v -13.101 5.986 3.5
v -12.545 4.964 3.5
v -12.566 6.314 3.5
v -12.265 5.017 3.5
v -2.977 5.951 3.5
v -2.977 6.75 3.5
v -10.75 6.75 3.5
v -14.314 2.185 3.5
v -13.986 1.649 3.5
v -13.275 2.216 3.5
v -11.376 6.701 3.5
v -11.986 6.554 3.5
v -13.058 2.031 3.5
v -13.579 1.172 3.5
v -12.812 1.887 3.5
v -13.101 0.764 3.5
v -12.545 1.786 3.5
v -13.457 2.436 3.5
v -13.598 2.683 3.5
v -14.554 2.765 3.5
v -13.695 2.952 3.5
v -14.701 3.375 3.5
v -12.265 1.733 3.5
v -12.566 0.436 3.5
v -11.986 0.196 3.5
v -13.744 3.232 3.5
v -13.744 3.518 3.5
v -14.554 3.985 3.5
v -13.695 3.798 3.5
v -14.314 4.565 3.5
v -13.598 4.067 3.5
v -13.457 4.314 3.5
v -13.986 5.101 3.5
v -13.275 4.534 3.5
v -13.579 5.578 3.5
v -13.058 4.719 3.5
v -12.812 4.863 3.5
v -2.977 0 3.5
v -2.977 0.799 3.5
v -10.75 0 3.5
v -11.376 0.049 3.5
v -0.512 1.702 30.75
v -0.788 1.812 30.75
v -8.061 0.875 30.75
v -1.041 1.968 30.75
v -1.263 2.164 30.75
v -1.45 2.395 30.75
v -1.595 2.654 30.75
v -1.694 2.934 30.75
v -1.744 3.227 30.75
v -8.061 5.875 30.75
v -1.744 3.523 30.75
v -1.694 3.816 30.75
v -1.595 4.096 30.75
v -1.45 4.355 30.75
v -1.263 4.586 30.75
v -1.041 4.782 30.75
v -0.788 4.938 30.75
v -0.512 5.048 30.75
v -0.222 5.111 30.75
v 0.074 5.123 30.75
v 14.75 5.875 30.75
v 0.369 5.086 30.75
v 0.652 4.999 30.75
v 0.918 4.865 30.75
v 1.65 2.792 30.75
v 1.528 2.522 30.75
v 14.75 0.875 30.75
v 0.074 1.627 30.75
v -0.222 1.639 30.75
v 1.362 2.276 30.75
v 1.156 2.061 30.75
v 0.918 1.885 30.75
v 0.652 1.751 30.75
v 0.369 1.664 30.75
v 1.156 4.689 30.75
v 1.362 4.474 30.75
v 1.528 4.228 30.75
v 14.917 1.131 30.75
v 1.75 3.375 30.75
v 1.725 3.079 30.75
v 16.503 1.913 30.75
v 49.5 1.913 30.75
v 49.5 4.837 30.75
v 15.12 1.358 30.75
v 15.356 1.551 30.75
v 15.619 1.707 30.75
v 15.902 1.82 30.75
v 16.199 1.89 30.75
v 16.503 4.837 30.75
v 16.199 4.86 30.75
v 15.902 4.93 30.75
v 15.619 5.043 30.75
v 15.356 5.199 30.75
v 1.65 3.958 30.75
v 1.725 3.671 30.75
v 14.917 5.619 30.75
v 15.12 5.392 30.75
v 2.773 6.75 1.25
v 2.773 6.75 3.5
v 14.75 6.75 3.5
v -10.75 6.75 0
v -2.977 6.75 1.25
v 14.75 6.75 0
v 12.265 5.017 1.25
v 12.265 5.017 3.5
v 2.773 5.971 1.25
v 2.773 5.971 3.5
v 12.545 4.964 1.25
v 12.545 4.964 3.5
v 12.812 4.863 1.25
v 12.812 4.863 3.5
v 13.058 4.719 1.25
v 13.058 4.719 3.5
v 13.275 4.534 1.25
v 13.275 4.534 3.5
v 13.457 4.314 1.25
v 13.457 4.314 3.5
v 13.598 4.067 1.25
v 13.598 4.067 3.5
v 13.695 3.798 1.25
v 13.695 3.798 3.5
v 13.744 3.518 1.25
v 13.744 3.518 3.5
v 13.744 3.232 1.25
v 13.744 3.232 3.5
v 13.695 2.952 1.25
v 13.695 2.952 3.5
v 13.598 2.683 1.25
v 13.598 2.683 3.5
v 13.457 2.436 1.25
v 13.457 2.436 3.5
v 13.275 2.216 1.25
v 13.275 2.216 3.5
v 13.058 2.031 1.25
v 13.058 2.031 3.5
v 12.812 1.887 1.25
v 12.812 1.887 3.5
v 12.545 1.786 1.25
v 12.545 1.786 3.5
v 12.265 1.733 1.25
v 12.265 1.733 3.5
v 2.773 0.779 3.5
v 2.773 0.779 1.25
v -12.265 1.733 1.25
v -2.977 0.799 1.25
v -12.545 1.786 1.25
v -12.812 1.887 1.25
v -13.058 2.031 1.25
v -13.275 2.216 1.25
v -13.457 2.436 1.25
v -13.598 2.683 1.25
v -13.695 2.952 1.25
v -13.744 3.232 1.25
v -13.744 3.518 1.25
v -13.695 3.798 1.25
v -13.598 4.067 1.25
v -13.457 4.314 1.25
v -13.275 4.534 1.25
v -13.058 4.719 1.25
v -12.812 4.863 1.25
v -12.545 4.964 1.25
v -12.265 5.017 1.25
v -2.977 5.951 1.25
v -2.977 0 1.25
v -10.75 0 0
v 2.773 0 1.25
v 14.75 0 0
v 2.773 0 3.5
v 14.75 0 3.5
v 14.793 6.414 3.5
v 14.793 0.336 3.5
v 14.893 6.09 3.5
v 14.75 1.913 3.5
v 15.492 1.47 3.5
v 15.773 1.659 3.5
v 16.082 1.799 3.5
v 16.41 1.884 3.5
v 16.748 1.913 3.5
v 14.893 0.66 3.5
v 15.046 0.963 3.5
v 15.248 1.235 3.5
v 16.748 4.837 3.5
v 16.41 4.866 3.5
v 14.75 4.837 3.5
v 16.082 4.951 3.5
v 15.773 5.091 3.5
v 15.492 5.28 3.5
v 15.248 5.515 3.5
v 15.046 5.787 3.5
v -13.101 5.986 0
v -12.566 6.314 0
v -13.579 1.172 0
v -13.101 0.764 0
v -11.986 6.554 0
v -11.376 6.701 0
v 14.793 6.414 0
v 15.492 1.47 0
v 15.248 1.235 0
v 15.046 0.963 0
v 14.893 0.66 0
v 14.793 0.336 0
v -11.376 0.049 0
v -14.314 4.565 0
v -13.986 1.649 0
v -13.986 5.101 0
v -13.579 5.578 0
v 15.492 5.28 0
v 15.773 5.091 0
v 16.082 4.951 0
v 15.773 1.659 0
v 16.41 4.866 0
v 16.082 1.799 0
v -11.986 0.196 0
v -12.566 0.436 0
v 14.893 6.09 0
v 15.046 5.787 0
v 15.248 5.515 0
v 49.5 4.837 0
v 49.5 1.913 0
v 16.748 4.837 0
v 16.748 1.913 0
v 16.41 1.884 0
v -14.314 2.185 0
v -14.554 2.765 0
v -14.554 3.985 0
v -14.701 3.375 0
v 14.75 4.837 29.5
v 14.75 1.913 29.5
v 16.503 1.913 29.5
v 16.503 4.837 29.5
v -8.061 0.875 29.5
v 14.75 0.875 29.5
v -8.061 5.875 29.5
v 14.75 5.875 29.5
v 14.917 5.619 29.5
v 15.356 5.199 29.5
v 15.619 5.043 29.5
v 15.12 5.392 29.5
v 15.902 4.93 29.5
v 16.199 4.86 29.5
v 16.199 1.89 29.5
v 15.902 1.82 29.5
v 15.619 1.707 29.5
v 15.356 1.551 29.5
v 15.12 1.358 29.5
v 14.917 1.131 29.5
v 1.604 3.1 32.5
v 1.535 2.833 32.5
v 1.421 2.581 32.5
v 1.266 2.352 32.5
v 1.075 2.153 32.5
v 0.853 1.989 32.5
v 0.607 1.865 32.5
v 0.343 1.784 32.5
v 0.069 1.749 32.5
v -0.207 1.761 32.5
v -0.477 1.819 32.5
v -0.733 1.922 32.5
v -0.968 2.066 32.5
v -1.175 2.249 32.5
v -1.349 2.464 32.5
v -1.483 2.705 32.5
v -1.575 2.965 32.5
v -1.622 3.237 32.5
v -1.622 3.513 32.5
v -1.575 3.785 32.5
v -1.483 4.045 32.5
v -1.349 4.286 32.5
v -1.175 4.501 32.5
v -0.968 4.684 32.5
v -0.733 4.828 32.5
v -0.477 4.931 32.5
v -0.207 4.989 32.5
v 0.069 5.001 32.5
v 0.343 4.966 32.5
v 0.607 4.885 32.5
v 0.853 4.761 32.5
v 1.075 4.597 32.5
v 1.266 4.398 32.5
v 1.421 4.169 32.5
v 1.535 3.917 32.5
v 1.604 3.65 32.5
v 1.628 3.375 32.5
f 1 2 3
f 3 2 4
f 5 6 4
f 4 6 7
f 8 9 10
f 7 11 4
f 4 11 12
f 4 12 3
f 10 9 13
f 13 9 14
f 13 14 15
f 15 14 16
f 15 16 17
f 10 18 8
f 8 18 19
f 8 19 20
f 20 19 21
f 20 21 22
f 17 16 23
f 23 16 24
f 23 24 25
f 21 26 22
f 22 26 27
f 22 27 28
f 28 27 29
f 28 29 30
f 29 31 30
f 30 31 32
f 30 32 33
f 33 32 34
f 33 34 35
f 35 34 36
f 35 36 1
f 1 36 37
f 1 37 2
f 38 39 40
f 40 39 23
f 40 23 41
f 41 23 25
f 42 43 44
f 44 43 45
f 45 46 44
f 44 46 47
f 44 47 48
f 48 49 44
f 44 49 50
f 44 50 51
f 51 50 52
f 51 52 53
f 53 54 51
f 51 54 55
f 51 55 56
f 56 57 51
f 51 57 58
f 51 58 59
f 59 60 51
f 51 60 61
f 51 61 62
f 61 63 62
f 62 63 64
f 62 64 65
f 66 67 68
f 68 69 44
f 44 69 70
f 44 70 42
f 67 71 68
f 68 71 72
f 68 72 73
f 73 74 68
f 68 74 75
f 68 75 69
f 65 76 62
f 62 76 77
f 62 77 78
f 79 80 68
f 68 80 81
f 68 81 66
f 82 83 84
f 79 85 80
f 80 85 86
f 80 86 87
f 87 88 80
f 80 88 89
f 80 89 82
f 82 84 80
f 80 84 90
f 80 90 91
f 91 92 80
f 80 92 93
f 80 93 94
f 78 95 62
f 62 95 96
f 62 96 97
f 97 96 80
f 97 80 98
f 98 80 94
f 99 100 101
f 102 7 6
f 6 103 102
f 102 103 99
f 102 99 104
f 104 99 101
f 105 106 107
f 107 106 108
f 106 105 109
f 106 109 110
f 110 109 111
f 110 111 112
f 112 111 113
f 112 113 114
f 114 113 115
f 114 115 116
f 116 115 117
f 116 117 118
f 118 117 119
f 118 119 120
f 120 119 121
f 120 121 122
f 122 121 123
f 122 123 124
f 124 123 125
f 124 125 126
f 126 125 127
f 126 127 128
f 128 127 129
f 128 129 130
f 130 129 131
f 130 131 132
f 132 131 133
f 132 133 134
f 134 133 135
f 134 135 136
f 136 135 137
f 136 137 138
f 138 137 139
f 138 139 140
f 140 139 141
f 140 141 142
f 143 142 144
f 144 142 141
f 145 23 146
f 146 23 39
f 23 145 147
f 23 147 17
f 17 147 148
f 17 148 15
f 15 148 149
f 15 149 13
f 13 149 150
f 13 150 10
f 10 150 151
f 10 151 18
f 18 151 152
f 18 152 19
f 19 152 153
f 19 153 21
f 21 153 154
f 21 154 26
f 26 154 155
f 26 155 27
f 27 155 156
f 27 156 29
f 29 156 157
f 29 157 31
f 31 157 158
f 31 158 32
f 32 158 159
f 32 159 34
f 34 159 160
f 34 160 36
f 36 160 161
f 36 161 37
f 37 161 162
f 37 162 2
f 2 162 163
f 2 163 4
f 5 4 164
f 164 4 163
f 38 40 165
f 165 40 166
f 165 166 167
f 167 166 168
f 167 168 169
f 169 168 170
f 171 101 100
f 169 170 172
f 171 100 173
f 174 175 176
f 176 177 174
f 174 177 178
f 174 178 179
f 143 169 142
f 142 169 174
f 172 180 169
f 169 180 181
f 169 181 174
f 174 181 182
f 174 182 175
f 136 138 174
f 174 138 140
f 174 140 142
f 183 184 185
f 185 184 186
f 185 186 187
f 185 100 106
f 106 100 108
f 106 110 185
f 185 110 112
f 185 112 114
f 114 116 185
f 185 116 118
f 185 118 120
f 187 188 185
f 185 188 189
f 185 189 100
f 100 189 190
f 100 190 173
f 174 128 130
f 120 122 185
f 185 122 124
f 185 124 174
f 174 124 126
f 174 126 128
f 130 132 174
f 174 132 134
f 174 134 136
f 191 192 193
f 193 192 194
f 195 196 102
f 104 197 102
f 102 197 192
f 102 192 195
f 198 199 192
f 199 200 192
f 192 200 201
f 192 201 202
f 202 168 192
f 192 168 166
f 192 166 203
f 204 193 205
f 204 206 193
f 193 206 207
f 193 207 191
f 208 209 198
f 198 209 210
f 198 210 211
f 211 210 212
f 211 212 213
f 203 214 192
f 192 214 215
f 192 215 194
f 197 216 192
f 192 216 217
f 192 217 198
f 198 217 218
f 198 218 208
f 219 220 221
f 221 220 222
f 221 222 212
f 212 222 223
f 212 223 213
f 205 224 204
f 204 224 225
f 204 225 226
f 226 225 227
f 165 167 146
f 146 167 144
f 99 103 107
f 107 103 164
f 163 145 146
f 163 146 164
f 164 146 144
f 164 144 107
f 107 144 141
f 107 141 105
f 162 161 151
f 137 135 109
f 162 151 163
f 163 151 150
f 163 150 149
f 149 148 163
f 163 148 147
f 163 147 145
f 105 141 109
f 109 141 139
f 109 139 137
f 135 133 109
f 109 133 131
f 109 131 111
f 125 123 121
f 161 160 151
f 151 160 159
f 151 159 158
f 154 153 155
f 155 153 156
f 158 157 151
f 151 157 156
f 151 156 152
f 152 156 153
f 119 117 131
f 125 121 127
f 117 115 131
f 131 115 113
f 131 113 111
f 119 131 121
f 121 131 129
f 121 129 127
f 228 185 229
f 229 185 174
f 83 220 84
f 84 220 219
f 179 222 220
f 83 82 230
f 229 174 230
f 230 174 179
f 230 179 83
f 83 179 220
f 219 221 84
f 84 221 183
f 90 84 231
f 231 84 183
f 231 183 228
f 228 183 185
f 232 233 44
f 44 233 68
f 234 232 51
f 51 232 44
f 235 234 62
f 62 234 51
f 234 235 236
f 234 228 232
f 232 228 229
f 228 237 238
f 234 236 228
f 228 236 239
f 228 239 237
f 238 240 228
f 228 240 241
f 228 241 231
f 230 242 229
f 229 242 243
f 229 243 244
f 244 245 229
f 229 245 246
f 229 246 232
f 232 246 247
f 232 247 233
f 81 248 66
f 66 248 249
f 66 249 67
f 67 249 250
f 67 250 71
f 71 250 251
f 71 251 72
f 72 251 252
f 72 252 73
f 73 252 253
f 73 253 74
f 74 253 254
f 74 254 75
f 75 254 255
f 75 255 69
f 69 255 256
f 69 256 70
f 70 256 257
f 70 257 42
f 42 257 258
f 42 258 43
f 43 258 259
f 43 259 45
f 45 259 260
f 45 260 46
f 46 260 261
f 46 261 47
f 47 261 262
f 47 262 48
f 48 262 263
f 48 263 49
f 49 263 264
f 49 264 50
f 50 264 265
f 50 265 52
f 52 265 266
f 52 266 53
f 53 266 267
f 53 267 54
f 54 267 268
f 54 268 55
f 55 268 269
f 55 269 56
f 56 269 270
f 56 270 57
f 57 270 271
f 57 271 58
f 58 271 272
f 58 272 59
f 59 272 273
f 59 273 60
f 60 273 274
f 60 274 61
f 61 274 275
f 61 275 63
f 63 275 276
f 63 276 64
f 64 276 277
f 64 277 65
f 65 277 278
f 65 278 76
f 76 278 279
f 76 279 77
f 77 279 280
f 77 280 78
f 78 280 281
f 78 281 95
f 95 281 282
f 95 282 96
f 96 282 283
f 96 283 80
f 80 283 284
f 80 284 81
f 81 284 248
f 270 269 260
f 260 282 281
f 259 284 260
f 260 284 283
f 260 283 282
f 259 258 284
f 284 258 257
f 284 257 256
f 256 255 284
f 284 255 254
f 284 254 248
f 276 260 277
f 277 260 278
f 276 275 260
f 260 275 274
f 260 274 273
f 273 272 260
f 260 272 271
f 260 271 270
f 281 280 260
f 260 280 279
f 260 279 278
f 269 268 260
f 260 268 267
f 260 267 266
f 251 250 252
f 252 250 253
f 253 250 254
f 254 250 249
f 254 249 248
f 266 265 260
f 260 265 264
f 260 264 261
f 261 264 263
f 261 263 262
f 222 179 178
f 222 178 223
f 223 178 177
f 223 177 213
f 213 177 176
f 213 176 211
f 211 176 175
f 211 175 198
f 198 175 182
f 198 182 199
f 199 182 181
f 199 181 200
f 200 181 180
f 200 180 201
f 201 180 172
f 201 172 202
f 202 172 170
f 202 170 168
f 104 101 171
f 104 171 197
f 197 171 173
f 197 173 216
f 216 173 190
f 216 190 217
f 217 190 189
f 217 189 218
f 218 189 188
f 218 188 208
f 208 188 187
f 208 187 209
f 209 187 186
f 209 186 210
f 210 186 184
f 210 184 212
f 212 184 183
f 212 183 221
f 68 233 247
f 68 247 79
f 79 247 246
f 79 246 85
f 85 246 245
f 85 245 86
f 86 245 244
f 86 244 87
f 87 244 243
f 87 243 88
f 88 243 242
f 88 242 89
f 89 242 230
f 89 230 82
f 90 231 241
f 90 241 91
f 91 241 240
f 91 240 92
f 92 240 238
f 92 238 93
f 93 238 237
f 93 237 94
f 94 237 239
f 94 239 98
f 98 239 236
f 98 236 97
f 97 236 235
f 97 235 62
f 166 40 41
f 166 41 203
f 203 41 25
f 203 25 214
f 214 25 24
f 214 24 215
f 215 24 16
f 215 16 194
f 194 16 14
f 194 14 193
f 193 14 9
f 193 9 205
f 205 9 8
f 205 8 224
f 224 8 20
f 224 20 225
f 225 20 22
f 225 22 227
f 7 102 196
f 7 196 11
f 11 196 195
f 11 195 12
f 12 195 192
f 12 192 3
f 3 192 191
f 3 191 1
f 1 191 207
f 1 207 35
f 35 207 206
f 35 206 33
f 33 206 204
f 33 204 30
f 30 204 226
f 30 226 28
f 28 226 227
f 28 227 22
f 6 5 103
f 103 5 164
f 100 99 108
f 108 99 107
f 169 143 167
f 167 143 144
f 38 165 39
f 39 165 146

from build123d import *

# Parameters (mm, degrees)
SKETCH1_W            = 29.5
SKETCH1_H            = 6.75
BOSS_EXTRUDE10_DEPTH = 3.5
BOSS_EXTRUDE15_DEPTH = 1.25
SKETCH1_17_W         = 34.75
SKETCH1_17_H         = 2.924143722
BOSS_EXTRUDE17_DEPTH = 30.75
BOSS_EXTRUDE18_DEPTH = 1.25
SKETCH2_9_R          = 1.75
BOSS_EXTRUDE19_DEPTH = 1.75
BOSS_EXTRUDE19_TAPER = 4
FILLET1_R            = 2
FILLET2_R            = 4
CUT_EXTRUDE1_START   = -2.25
SKETCH3_W            = 5.75
SKETCH3_H            = 1.125
CUT_EXTRUDE1_DEPTH   = 2.25


with BuildPart() as part:
    # Sketch1 → Boss-Extrude10 (new body)
    with BuildSketch(Plane.XY):
        with Locations((0, 3.375)):
            Rectangle(SKETCH1_W, SKETCH1_H)
        with BuildLine():
            Line((-12.265078429, 5.016721387), (0, 6.25))
            Line((0, 6.25), (12.265078429, 5.016721387))
            ThreePointArc((12.265078429, 5.016721387), (13.75, 3.375), (12.265078429, 1.733278613))
            Line((12.265078429, 1.733278613), (0, 0.5))
            Line((0, 0.5), (-12.265078429, 1.733278613))
            ThreePointArc((-12.265078429, 1.733278613), (-13.75, 3.375), (-12.265078429, 5.016721387))
        make_face(mode=Mode.SUBTRACT)
    extrude(amount=BOSS_EXTRUDE10_DEPTH)

    # Sketch1<16> → Boss-Extrude15 (add)
    with BuildSketch(Plane.XY):
        with BuildLine():
            ThreePointArc((-12.265078429, 5.016721387), (-13.75, 3.375), (-12.265078429, 1.733278613))
            Line((-12.265078429, 1.733278613), (0, 0.5))
            Line((0, 0.5), (12.265078429, 1.733278613))
            ThreePointArc((12.265078429, 1.733278613), (13.75, 3.375), (12.265078429, 5.016721387))
            Line((12.265078429, 5.016721387), (0, 6.25))
            Line((0, 6.25), (-12.265078429, 5.016721387))
        make_face()
    extrude(amount=BOSS_EXTRUDE15_DEPTH)

    # Sketch1<17> → Boss-Extrude17 (add)
    with BuildSketch(Plane.XY):
        with Locations((32.125, 3.375)):
            Rectangle(SKETCH1_17_W, SKETCH1_17_H)
    extrude(amount=BOSS_EXTRUDE17_DEPTH)

    # Sketch2 → Boss-Extrude18 (add)
    with BuildSketch(Plane.XY.offset(30.75)):
        Polygon((13.5, 5.875), (-8.061356684, 5.875), (-8.061356684, 0.875), (14.75, 0.875), (14.75, 5.875), align=None)
    extrude(amount=-BOSS_EXTRUDE18_DEPTH)

    # Sketch2<9> → Boss-Extrude19 (add)
    with BuildSketch(Plane.XY.offset(30.75)):
        with Locations((0, 3.375)):
            Circle(SKETCH2_9_R)
    extrude(amount=BOSS_EXTRUDE19_DEPTH, taper=BOSS_EXTRUDE19_TAPER)

    # Fillet1
    # the kernel refuses this fillet: 2 mm, written as the material it adds along each edge
    with BuildSketch(Plane(origin=(14.75, 1.912928139, 0), x_dir=(0, -1, 0), z_dir=(0, 0, 1))) as fillet1_piece_1:
        with BuildLine():
            CenterArc((2, 1.998103724), FILLET1_R, 180, 87.504786267)
            Line((0, 1.998103724), (0, 0))
            Line((0, 0), (1.912928139, 0))
        make_face()
    extrude(amount=3.5)
    with BuildSketch(Plane(origin=(14.75, 4.837071861, 0), x_dir=(1, 0, 0), z_dir=(0, 0, 1))) as fillet1_piece_2:
        with BuildLine():
            CenterArc((1.998103724, 2), FILLET1_R, 182.495213733, 87.504786267)
            Line((0, 1.912928139), (0, 0))
            Line((0, 0), (1.998103724, 0))
        make_face()
    extrude(amount=3.5)
    with BuildSketch(Plane(origin=(14.75, 1.912928139, 29.5), x_dir=(1, 0, 0), z_dir=(0, 0, 1))) as fillet1_piece_3:
        with BuildLine():
            CenterArc((1.753401761, -2), FILLET1_R, 90, 61.246917848)
            Line((0, -1.037928139), (0, 0))
            Line((0, 0), (1.753401761, 0))
        make_face()
    extrude(amount=1.25)
    with BuildSketch(Plane(origin=(14.75, 4.837071861, 29.5), x_dir=(1, 0, 0), z_dir=(0, 0, 1))) as fillet1_piece_4:
        with BuildLine():
            CenterArc((1.753401761, 2), FILLET1_R, 208.753082152, 61.246917848)
            Line((0, 1.037928139), (0, 0))
            Line((0, 0), (1.753401761, 0))
        make_face()
    extrude(amount=1.25)

    # Fillet2
    # the kernel refuses this fillet: 4 mm, written as the material it takes off along each edge
    with BuildSketch(Plane(origin=(-14.75, 6.75, -10), x_dir=(0, -1, 0), z_dir=(0, 0, 1)), Plane(origin=(-14.75, 0, -10), x_dir=(1, 0, 0), z_dir=(0, 0, 1))) as fillet2_piece_1:
        with BuildLine():
            CenterArc((FILLET2_R, FILLET2_R), FILLET2_R, 180, 90)
            Line((0, FILLET2_R), (0, 0))
            Line((0, 0), (FILLET2_R, 0))
        make_face()
    extrude(amount=23.5, mode=Mode.SUBTRACT)

    # Sketch3 → Cut-Extrude1 (cut)
    with BuildSketch(Plane.XY.offset(3.5).offset(CUT_EXTRUDE1_START)):
        with Locations((-0.102107464, 6.1875)):
            Rectangle(SKETCH3_W, SKETCH3_H)
        with Locations((-0.102107464, 0.5625)):
            Rectangle(SKETCH3_W, SKETCH3_H)
    extrude(amount=CUT_EXTRUDE1_DEPTH, mode=Mode.SUBTRACT)


solid = part.part
